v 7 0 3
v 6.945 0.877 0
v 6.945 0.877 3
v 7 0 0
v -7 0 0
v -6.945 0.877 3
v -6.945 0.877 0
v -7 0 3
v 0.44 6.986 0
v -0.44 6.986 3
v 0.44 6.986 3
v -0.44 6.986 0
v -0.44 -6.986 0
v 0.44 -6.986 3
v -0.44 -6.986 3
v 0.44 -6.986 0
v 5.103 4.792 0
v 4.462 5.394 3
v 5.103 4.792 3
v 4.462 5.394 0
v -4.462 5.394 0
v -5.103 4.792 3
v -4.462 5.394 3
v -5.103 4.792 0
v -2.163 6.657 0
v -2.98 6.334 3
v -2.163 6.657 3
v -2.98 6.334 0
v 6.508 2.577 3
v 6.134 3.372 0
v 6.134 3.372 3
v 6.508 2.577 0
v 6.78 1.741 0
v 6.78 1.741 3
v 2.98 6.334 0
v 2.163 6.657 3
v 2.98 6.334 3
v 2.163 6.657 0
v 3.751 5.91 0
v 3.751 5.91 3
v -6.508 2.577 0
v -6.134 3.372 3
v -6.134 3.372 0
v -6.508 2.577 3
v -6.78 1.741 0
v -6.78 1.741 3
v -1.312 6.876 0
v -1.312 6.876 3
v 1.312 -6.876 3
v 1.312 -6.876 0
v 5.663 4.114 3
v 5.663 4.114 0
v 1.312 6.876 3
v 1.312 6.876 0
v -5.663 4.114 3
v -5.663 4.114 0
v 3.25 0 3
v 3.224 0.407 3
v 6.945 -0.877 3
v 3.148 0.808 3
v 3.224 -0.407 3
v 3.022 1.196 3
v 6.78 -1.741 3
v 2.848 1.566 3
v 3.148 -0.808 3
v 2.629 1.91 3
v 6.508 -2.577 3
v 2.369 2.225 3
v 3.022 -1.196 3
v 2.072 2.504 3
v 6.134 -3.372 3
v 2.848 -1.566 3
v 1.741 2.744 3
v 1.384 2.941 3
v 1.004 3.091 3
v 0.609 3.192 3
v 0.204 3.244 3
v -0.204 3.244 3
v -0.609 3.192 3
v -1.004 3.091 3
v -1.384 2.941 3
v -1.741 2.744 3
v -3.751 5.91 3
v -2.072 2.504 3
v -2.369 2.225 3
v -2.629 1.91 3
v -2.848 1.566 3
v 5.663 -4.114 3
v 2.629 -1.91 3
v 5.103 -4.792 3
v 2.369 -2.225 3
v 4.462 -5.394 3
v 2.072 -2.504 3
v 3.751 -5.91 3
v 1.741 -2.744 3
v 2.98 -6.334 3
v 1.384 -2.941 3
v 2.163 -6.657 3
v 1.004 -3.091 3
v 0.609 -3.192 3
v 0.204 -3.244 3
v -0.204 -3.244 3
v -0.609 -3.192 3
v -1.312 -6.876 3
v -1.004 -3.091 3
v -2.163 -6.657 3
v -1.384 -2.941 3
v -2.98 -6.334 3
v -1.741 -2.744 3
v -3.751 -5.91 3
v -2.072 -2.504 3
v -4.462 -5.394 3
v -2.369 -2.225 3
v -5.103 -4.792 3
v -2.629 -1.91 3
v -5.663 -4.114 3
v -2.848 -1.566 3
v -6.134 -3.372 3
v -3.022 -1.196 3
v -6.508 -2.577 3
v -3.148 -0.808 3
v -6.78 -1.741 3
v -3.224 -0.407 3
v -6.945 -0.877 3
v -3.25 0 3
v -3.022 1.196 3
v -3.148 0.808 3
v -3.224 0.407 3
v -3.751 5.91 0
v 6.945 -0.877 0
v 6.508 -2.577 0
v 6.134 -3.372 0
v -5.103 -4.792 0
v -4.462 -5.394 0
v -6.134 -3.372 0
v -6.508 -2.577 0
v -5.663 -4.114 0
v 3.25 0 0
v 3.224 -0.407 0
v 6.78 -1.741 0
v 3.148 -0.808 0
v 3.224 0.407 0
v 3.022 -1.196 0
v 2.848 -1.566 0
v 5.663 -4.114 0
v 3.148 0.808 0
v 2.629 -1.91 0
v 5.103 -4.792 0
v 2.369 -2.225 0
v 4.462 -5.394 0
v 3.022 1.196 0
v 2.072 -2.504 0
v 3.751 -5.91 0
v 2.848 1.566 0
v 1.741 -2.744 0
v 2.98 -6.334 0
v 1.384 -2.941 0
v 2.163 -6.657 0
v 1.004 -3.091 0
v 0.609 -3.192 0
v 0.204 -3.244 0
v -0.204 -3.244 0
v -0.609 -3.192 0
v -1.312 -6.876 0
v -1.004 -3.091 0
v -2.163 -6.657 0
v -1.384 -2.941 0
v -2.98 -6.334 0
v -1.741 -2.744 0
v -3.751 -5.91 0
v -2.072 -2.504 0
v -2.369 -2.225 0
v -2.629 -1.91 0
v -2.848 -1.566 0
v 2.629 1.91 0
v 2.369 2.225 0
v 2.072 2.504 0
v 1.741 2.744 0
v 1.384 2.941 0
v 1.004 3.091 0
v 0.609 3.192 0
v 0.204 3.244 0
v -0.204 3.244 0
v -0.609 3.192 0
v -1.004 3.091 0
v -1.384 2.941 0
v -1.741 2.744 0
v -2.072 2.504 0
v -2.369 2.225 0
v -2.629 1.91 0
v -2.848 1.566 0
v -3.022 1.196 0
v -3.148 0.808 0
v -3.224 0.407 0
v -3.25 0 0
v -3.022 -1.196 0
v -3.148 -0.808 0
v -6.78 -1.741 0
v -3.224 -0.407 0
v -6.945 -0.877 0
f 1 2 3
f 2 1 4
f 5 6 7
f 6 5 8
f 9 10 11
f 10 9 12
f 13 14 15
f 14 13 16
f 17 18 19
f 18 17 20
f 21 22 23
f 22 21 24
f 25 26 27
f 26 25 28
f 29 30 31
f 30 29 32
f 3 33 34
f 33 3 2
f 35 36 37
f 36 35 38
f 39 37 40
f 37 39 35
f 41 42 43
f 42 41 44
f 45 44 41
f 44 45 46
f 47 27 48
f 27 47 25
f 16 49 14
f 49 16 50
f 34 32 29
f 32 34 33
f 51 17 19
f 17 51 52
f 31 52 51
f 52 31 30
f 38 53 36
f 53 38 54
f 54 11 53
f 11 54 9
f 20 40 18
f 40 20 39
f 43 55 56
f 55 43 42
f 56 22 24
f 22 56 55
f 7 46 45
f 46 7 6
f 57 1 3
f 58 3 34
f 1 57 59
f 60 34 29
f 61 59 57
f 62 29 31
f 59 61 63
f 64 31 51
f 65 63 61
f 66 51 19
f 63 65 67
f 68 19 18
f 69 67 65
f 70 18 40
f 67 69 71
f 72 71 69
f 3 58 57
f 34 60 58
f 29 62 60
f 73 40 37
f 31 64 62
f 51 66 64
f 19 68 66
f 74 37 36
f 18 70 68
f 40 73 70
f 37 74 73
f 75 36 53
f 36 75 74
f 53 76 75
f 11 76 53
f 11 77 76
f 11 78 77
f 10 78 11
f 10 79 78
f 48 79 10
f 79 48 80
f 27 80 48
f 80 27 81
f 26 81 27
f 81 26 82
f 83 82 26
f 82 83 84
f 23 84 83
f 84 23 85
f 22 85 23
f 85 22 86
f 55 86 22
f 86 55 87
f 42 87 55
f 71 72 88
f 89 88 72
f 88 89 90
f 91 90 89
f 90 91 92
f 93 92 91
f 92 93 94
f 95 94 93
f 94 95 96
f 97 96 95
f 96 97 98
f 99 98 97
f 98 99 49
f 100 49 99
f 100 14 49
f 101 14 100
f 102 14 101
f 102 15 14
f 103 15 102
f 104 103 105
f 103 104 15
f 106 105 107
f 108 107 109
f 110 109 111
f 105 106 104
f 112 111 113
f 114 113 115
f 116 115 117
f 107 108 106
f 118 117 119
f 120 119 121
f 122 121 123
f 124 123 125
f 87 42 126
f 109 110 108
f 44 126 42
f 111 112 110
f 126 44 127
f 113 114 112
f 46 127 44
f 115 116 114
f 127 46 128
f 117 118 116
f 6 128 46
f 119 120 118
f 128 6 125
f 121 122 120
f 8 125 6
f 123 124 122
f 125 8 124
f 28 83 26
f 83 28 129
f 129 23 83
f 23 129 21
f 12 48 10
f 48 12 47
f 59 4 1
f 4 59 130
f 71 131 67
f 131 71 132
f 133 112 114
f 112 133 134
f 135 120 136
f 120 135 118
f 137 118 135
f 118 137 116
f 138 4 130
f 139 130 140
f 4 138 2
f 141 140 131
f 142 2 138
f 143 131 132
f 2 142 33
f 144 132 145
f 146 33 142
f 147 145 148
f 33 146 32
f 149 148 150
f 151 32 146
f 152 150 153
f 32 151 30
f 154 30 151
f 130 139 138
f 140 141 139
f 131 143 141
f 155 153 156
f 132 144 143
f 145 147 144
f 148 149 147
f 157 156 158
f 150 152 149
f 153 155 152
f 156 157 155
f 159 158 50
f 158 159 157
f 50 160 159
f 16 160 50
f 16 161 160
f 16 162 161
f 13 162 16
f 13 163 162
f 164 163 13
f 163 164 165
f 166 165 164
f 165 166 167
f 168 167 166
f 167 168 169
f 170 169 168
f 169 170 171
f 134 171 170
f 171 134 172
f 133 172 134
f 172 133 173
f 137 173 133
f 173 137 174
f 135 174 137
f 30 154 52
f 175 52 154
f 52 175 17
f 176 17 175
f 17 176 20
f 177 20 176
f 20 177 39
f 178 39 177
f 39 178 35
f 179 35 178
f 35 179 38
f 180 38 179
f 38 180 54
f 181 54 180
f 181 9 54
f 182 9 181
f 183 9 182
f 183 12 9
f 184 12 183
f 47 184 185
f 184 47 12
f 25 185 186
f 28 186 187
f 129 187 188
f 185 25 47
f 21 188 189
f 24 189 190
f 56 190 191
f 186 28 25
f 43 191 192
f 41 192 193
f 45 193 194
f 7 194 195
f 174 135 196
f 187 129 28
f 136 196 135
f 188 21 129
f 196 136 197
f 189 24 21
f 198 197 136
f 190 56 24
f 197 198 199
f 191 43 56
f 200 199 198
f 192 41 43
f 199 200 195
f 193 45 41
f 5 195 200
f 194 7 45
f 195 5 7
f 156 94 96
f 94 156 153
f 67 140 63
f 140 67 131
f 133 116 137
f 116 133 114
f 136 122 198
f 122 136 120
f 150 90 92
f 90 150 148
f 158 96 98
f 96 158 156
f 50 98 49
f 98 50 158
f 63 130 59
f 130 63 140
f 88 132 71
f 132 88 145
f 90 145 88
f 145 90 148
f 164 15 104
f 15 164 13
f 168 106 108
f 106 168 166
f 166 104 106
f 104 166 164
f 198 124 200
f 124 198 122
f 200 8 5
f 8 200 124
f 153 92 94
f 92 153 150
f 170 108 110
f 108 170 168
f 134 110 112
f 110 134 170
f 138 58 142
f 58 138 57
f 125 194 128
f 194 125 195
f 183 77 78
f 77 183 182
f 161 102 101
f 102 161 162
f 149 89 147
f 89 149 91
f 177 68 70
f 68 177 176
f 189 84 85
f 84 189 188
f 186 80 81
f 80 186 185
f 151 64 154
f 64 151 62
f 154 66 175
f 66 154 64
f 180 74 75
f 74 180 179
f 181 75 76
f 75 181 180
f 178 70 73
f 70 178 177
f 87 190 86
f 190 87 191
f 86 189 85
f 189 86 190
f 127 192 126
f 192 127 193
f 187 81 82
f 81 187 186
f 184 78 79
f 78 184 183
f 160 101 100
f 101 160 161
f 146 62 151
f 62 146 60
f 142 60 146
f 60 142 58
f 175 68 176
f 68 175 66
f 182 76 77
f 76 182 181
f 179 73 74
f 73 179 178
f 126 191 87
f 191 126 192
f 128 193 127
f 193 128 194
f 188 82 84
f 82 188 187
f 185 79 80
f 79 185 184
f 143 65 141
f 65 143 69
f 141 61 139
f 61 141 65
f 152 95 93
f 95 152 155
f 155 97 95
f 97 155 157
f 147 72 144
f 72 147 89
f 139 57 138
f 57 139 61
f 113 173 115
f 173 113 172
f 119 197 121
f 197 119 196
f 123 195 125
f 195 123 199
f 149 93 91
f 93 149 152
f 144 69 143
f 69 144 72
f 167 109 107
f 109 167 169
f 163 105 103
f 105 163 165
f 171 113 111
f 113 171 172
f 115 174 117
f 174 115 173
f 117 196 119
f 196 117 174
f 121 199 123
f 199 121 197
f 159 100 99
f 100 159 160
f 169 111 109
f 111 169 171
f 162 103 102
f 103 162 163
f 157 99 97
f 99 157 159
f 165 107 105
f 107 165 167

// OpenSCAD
// Generated by SolidPython 1.1.3 on 2023-03-02 20:13:04
$fn = 50;


difference() {
	union() {
		translate(v = [0, 0, 0]) {
			rotate(a = [0, 0, 0]) {
				cylinder(h = 3, r = 7.0000000000);
			}
		}
	}
	union() {
		translate(v = [0.0000000000, 0.0000000000, 0]) {
			rotate(a = [0, 0, 0]) {
				translate(v = [0, 0, -50]) {
					rotate(a = [0, 0, 0]) {
						cylinder(h = 100, r = 3.2500000000);
					}
				}
			}
		}
	}
}
/***********************************************
*********      SolidPython code:      **********
************************************************
 
from solid import *
import os
import subprocess

import oomB

import opsc_library_gen

mode = "laser"
#mode = "3d_print"

defined_objects = {}

radius_dict = {}
countersunk_dict = {}


def set_mode(m):
    global mode
    mode = m
    radius_dict['M6'] = 6.5/2
    radius_dict['M3'] = 3.3/2
    if mode == "laser":
        radius_dict['M6'] = 6/2
        radius_dict['M3'] = 3/2

    countersunk_dict['M3'] = {}
    countersunk_dict['M3']['little_rad'] = radius_dict['M3']
    countersunk_dict['M3']['big_rad'] = (5.5+0.6)/2
    if mode == "laser":
        countersunk_dict['M3']['big_rad'] = (4.75+0.6)/2
        countersunk_dict['M3']['little_rad'] = (4.75+0.6)/2

    countersunk_dict['M3']['height'] = 1.7


def opsc_make_object(filename, objects, save_type="none",resolution=50, layers = 1, tilediff = 200, mode="laser", overwrite=True):
    if overwrite or not os.path.exists(filename):
        set_mode(mode)
        save_type = save_type.lower()
        os.makedirs(os.path.dirname(filename), exist_ok=True)
        final_object = opsc_get_object(objects)
        # Save the final object to the specified filename    
        scad_render_to_file(final_object, filename, file_header='$fn = %s;' % resolution, include_orig_code=True)
        if mode == "laser":
            filename_laser = filename.replace(".scad","-flat.scad")
            scad_render_to_file(getLaser(final_object, layers=layers, tilediff=tilediff), filename_laser, file_header='$fn = %s;' % resolution, include_orig_code=True)
            if save_type == "all":
                saveToAll(filename_laser)
            elif save_type == "dxf":
                saveToDxf(filename_laser)
        if save_type == "all":
            saveToAll(filename)
        elif save_type == "dxf":
            saveToDxf(filename)


def opsc_get_object(objects):
    # Create the solidpython objects
    positive_objects = [get_opsc_item(obj) for obj in objects if obj['type'] == 'positive']
    negative_objects = [get_opsc_item(obj) for obj in objects if obj['type'] == 'negative']
    # Union the positive objects
    positive_object = union()(*positive_objects)
    # Union the negative objects
    negative_object = union()(*negative_objects)
    # Create the final object by subtracting the negative objects from the positive objects
    return difference()(positive_object, negative_object)

def get_opsc_item(params):
    # A dictionary to map radius string values to numerical values
    #radius_dict = {'small': 5, 'medium': 10, 'large': 15}
    # An array of function names for basic shapes
    basic_shapes = ['cube', 'sphere', 'cylinder']
    
    # An array of function names for other shapes
    other_shapes = ['hole', 'slot', 'rounded_rectangle', 'countersunk']
    


    # Convert radius to r if present, and remove radius from the params dictionary
    if 'radius' in params:
        if isinstance(params['radius'], str):
            # Use the radius_dict to map the radius string value to a numerical value
            params['r'] = radius_dict[params['radius']]
        else:
            params['r'] = params['radius']
        del params['radius']
    

    # Check if the object type is a basic shape
    if params['shape'] in basic_shapes:
        # Remove shape and unexpected dictionary values
        allowed_keys = {'size', 'r', 'r1', 'r2', 'd', 'h', 'rw', 'rh', 'dw', 'dh'}
        shape_params = {k: v for k, v in params.items() if k in allowed_keys}

        # Call the corresponding function for the shape parameter, using ** notation to pass the shape_params dictionary as keyword arguments
        return get_opsc_transform(params,globals()[params['shape']](**shape_params))
    
    # If the object type is not a basic shape, check if it's a defined object or one of the other shapes
    elif params['shape'] in other_shapes:
        # Call the corresponding function for the shape parameter, passing the params dictionary as an argument
        p2 = copy.deepcopy(params)
        p2["pos"] = [0,0,0]
        return get_opsc_transform(params,globals()[params['shape']](p2))
    
    # If the object is not a basic shape or a defined object, try to import it from a .scad file
    else:
        obj = defined_objects[params['shape']]
        return get_opsc_transform(params,obj)

def get_opsc_transform(params, solid_obj):
    # Rotate the object based on the 'rot' field in the params dictionary, or the 'rotX', 'rotY', and 'rotZ' fields if 'rot' is not present
    rot = params.get('rot', [])
    if rot:
        rotX, rotY, rotZ = rot
    else:
        rotX = params.get('rotX', 0)
        rotY = params.get('rotY', 0)
        rotZ = params.get('rotZ', 0)
    solid_obj = rotate([rotX, rotY, rotZ])(solid_obj)

    # Translate the object based on the 'pos' field in the params dictionary, or the 'x', 'y', and 'z' fields if 'pos' is not present
    pos = params.get('pos', [])
    if pos:
        x, y, z = pos
    else:
        x = params.get('x', 0)
        y = params.get('y', 0)
        z = params.get('z', 0)
    solid_obj = translate([x, y, z])(solid_obj)
    return solid_obj


import random

def opsc_easy_array(type, shape, repeats, pos_start, shift_arr, **kwargs):
    for i in range(0,3):
        repeats.append(1)
        pos_start.append(0)
        shift_arr.append(0)
    return_objects = []

    for x in range(0,repeats[0]):
        for y in range(0,repeats[1]):
            for z in range(0,repeats[2]):
                return_objects.append(opsc_easy(type, shape, pos=[pos_start[0]+x*shift_arr[0],pos_start[1]+y*shift_arr[1],pos_start[2]+z*shift_arr[2]], **kwargs))
    return return_objects                



def opsc_easy(type, shape, **kwargs):
    obj = {
        'type': type,
        'shape': shape
    }
    for param in ['size', 'r', 'r1', 'r2', 'd', 'h', 'rw', 'rh', 'dw', 'dh', 'pos', 'x', 'y', 'z', 'rot', 'rotX', 'rotY', 'rotZ', "w"]:
        if param in kwargs:
            obj[param] = kwargs[param]
    return obj

def hole(params):
    p2 = copy.deepcopy(params)  
    # Check if the radius is a string and replace it with the corresponding value from the dictionary
    if isinstance(p2['r'], str):
        p2['r'] = radius_dict[p2['r']]
    
    # Set the height to 100 if not specified
    if 'h' not in p2:
        p2['h'] = 100
        p2["pos"] = [0,0,-50]
    p2["center"] = True
    # Create the cylinder object
    p2["shape"] = "cylinder"
    p2["type"] = "positive"

    return get_opsc_item(p2)

import copy

def countersunk(params):
    p2 = copy.deepcopy(params)
    counter_rad = p2['r']
    p2['r'] = radius_dict[p2['r']]
    hp = copy.deepcopy(p2)
    hp["type"] = "positive"
    hp["shape"] = "hole"
    del hp["rot"]
    hol = get_opsc_item(hp)
    
    cp = copy.deepcopy(p2)
    cp["h"] = countersunk_dict[counter_rad]["height"]
    cp["r2"] = countersunk_dict[counter_rad]["little_rad"]
    cp["r1"] = countersunk_dict[counter_rad]["big_rad"]
    del cp["r"]
    del cp["rot"]
    cp["type"] = "positive"
    cp["shape"] = "cylinder"
    cp["pos"] = [0,0,0]

    top = get_opsc_item(cp)
    return union()(hol,top)



def slot(params):  
    p2 = copy.deepcopy(params) 
    if isinstance(p2['r'], str):
        p2['r'] = radius_dict[p2['r']]
    p2["type"] = "positive"
    p2["shape"] = "hole"
    del p2["rot"]
    p2["pos"] = [0,0,0]
    left = copy.deepcopy(p2)
    right = copy.deepcopy(p2)
    left["pos"][0] = p2["w"] / 2 - p2["r"] 
    
    right["pos"][0] = -p2["w"] / 2 + p2["r"] 
    pass
    leftObj = get_opsc_item(left)
    rightObj = get_opsc_item(right)
    return hull()(leftObj, rightObj)

def rounded_rectangle(params):   
    p2 = copy.deepcopy(params) 
    p2["h"] = p2["size"][2]
    p2["pos"] = p2.get("pos", [0, 0, 0]) 
    p2["type"] = "positive"
    p2["shape"] = "hole"
    p2["pos"] = [0,0,0]
    
    if 'rot' in p2:
        del p2["rot"]   
    if 'r' not in p2:
        p2["r"] = 5 
    tl = copy.deepcopy(p2)
    tr = copy.deepcopy(p2)
    bl = copy.deepcopy(p2)
    br = copy.deepcopy(p2)
    tl["pos"][0] = -(p2["size"][0] - p2["r"]*2)/2
    tl["pos"][1] = (p2["size"][1] - p2["r"]*2)/2
    tr["pos"][0] = (p2["size"][0] - p2["r"]*2)/2
    tr["pos"][1] = (p2["size"][1] - p2["r"]*2)/2
    bl["pos"][0] = -(p2["size"][0] - p2["r"]*2)/2
    bl["pos"][1] = -(p2["size"][1] - p2["r"]*2)/2
    br["pos"][0] = (p2["size"][0] - p2["r"]*2)/2
    br["pos"][1] = -(p2["size"][1] - p2["r"]*2)/2
    del tl["size"]
    del tr["size"]
    del bl["size"]
    del br["size"]
    tlo = get_opsc_item(tl)
    tro = get_opsc_item(tr)
    blo = get_opsc_item(bl)
    bro = get_opsc_item(br)    
    return hull()(tlo, tro, blo, bro)



def import_scad_object(filename):
    # Import the .scad file and convert it to a solidpython object
    #filename = "parts"
    obj = import_scad(filename)
    return obj.main()
    


import os
import solid as solidpython

# A dictionary to store the defined objects


def load_scad_objects():
    opsc_library_gen.gen_library(defined_objects)

import random

def test(num_objects):
    objects = []
    for i in range(num_objects):
        # Choose a random shape
        #shape = random.choice(['cube', 'sphere', 'cylinder', 'hole', 'slot', "rounded_rectangle"])
        shape = random.choice(["rounded_rectangle"])

        # Choose a random type
        type = random.choice(['positive', 'negative'])
        
        # Create an empty object dictionary
        obj = {'shape': shape, 'type': type}
        
        # Set shape-specific parameters
        if obj['shape'] in ['cube']:
            obj['size'] =  [random.uniform(5, 15), random.uniform(5, 15), random.uniform(5, 15)]
        if obj['shape'] in ['rounded_rectangle']:
            obj['size'] =  [random.uniform(5, 15), random.uniform(5, 15), random.uniform(5, 15)]
            obj['r'] = random.uniform(0.5, 5)
        elif obj['shape'] == 'sphere':
            obj['r'] = random.uniform(5, 15)
        elif obj['shape'] in ['cylinder', 'hole']:
            obj['r'] = random.uniform(0.5, 5)
            obj['h'] = random.uniform(5, 15)
        elif obj['shape'] == 'slot':
            obj['r'] = random.uniform(0.5, 5)
            obj['h'] = random.uniform(5, 15)
            obj['w'] = random.uniform(5, 15)
        
        # Set a random position and rotation
        obj['pos'] = [random.uniform(-20, 20), random.uniform(-20, 20), random.uniform(-20, 20)]
        obj['rot'] = [random.uniform(-180, 180), random.uniform(-180, 180), random.uniform(-180, 180)]
        
        # Add the object to the list
        objects.append(obj)
    return objects

####### old file saving
def saveToAll(fileIn):
    saveToDxf(fileIn)
    saveToPng(fileIn)
    saveToStl(fileIn)
    saveToSvg(fileIn)

def saveToDxf(fileIn, fileOut="", copy_to_laser=True):
    if fileOut == "":
        fileOut = fileIn.replace(".scad",".dxf")
    saveToFile(fileIn, fileOut)


    
def saveToPng(fileIn, fileOut="",extra="--render"):
    if fileOut == "":
        fileOut = fileIn.replace(".scad",".png")
    saveToFile(fileIn, fileOut)

def saveToStl(fileIn, fileOut=""):
    if fileOut == "":
        fileOut = fileIn.replace(".scad",".stl")
    saveToFile(fileIn, fileOut)
    
def saveToSvg(fileIn, fileOut=""):
    if fileOut == "":
        fileOut = fileIn.replace(".scad",".svg")
    saveToFile(fileIn, fileOut)

def saveToFile(fileIn, fileOut,extra=""):
    #extra = extra + " --colorscheme Tomorrow"

    launchStr = 'openscad -o "' + fileOut + '"' + extra + ' "' + fileIn + '"'
    if ".png" in fileOut:
        launchStr = launchStr + " --render"
    print("            saveToFile launch string: " + launchStr)
    subprocess.run(launchStr)
    x=0

def getLaser(final_object,start=1.5,layers=1,thickness=3,tilediff=200):
        rv= []

        for x in range(layers):
            rv.append(translate([0,x*tilediff,0])(
                    projection()(
                        intersection()(translate([-500,-500,start+x*thickness])(cube(size=[1000,1000,0.1])),
                            final_object
                        )
                    )
            )
            )
            
        return union()(rv)

set_mode("laser")
load_scad_objects() 
 
************************************************/
